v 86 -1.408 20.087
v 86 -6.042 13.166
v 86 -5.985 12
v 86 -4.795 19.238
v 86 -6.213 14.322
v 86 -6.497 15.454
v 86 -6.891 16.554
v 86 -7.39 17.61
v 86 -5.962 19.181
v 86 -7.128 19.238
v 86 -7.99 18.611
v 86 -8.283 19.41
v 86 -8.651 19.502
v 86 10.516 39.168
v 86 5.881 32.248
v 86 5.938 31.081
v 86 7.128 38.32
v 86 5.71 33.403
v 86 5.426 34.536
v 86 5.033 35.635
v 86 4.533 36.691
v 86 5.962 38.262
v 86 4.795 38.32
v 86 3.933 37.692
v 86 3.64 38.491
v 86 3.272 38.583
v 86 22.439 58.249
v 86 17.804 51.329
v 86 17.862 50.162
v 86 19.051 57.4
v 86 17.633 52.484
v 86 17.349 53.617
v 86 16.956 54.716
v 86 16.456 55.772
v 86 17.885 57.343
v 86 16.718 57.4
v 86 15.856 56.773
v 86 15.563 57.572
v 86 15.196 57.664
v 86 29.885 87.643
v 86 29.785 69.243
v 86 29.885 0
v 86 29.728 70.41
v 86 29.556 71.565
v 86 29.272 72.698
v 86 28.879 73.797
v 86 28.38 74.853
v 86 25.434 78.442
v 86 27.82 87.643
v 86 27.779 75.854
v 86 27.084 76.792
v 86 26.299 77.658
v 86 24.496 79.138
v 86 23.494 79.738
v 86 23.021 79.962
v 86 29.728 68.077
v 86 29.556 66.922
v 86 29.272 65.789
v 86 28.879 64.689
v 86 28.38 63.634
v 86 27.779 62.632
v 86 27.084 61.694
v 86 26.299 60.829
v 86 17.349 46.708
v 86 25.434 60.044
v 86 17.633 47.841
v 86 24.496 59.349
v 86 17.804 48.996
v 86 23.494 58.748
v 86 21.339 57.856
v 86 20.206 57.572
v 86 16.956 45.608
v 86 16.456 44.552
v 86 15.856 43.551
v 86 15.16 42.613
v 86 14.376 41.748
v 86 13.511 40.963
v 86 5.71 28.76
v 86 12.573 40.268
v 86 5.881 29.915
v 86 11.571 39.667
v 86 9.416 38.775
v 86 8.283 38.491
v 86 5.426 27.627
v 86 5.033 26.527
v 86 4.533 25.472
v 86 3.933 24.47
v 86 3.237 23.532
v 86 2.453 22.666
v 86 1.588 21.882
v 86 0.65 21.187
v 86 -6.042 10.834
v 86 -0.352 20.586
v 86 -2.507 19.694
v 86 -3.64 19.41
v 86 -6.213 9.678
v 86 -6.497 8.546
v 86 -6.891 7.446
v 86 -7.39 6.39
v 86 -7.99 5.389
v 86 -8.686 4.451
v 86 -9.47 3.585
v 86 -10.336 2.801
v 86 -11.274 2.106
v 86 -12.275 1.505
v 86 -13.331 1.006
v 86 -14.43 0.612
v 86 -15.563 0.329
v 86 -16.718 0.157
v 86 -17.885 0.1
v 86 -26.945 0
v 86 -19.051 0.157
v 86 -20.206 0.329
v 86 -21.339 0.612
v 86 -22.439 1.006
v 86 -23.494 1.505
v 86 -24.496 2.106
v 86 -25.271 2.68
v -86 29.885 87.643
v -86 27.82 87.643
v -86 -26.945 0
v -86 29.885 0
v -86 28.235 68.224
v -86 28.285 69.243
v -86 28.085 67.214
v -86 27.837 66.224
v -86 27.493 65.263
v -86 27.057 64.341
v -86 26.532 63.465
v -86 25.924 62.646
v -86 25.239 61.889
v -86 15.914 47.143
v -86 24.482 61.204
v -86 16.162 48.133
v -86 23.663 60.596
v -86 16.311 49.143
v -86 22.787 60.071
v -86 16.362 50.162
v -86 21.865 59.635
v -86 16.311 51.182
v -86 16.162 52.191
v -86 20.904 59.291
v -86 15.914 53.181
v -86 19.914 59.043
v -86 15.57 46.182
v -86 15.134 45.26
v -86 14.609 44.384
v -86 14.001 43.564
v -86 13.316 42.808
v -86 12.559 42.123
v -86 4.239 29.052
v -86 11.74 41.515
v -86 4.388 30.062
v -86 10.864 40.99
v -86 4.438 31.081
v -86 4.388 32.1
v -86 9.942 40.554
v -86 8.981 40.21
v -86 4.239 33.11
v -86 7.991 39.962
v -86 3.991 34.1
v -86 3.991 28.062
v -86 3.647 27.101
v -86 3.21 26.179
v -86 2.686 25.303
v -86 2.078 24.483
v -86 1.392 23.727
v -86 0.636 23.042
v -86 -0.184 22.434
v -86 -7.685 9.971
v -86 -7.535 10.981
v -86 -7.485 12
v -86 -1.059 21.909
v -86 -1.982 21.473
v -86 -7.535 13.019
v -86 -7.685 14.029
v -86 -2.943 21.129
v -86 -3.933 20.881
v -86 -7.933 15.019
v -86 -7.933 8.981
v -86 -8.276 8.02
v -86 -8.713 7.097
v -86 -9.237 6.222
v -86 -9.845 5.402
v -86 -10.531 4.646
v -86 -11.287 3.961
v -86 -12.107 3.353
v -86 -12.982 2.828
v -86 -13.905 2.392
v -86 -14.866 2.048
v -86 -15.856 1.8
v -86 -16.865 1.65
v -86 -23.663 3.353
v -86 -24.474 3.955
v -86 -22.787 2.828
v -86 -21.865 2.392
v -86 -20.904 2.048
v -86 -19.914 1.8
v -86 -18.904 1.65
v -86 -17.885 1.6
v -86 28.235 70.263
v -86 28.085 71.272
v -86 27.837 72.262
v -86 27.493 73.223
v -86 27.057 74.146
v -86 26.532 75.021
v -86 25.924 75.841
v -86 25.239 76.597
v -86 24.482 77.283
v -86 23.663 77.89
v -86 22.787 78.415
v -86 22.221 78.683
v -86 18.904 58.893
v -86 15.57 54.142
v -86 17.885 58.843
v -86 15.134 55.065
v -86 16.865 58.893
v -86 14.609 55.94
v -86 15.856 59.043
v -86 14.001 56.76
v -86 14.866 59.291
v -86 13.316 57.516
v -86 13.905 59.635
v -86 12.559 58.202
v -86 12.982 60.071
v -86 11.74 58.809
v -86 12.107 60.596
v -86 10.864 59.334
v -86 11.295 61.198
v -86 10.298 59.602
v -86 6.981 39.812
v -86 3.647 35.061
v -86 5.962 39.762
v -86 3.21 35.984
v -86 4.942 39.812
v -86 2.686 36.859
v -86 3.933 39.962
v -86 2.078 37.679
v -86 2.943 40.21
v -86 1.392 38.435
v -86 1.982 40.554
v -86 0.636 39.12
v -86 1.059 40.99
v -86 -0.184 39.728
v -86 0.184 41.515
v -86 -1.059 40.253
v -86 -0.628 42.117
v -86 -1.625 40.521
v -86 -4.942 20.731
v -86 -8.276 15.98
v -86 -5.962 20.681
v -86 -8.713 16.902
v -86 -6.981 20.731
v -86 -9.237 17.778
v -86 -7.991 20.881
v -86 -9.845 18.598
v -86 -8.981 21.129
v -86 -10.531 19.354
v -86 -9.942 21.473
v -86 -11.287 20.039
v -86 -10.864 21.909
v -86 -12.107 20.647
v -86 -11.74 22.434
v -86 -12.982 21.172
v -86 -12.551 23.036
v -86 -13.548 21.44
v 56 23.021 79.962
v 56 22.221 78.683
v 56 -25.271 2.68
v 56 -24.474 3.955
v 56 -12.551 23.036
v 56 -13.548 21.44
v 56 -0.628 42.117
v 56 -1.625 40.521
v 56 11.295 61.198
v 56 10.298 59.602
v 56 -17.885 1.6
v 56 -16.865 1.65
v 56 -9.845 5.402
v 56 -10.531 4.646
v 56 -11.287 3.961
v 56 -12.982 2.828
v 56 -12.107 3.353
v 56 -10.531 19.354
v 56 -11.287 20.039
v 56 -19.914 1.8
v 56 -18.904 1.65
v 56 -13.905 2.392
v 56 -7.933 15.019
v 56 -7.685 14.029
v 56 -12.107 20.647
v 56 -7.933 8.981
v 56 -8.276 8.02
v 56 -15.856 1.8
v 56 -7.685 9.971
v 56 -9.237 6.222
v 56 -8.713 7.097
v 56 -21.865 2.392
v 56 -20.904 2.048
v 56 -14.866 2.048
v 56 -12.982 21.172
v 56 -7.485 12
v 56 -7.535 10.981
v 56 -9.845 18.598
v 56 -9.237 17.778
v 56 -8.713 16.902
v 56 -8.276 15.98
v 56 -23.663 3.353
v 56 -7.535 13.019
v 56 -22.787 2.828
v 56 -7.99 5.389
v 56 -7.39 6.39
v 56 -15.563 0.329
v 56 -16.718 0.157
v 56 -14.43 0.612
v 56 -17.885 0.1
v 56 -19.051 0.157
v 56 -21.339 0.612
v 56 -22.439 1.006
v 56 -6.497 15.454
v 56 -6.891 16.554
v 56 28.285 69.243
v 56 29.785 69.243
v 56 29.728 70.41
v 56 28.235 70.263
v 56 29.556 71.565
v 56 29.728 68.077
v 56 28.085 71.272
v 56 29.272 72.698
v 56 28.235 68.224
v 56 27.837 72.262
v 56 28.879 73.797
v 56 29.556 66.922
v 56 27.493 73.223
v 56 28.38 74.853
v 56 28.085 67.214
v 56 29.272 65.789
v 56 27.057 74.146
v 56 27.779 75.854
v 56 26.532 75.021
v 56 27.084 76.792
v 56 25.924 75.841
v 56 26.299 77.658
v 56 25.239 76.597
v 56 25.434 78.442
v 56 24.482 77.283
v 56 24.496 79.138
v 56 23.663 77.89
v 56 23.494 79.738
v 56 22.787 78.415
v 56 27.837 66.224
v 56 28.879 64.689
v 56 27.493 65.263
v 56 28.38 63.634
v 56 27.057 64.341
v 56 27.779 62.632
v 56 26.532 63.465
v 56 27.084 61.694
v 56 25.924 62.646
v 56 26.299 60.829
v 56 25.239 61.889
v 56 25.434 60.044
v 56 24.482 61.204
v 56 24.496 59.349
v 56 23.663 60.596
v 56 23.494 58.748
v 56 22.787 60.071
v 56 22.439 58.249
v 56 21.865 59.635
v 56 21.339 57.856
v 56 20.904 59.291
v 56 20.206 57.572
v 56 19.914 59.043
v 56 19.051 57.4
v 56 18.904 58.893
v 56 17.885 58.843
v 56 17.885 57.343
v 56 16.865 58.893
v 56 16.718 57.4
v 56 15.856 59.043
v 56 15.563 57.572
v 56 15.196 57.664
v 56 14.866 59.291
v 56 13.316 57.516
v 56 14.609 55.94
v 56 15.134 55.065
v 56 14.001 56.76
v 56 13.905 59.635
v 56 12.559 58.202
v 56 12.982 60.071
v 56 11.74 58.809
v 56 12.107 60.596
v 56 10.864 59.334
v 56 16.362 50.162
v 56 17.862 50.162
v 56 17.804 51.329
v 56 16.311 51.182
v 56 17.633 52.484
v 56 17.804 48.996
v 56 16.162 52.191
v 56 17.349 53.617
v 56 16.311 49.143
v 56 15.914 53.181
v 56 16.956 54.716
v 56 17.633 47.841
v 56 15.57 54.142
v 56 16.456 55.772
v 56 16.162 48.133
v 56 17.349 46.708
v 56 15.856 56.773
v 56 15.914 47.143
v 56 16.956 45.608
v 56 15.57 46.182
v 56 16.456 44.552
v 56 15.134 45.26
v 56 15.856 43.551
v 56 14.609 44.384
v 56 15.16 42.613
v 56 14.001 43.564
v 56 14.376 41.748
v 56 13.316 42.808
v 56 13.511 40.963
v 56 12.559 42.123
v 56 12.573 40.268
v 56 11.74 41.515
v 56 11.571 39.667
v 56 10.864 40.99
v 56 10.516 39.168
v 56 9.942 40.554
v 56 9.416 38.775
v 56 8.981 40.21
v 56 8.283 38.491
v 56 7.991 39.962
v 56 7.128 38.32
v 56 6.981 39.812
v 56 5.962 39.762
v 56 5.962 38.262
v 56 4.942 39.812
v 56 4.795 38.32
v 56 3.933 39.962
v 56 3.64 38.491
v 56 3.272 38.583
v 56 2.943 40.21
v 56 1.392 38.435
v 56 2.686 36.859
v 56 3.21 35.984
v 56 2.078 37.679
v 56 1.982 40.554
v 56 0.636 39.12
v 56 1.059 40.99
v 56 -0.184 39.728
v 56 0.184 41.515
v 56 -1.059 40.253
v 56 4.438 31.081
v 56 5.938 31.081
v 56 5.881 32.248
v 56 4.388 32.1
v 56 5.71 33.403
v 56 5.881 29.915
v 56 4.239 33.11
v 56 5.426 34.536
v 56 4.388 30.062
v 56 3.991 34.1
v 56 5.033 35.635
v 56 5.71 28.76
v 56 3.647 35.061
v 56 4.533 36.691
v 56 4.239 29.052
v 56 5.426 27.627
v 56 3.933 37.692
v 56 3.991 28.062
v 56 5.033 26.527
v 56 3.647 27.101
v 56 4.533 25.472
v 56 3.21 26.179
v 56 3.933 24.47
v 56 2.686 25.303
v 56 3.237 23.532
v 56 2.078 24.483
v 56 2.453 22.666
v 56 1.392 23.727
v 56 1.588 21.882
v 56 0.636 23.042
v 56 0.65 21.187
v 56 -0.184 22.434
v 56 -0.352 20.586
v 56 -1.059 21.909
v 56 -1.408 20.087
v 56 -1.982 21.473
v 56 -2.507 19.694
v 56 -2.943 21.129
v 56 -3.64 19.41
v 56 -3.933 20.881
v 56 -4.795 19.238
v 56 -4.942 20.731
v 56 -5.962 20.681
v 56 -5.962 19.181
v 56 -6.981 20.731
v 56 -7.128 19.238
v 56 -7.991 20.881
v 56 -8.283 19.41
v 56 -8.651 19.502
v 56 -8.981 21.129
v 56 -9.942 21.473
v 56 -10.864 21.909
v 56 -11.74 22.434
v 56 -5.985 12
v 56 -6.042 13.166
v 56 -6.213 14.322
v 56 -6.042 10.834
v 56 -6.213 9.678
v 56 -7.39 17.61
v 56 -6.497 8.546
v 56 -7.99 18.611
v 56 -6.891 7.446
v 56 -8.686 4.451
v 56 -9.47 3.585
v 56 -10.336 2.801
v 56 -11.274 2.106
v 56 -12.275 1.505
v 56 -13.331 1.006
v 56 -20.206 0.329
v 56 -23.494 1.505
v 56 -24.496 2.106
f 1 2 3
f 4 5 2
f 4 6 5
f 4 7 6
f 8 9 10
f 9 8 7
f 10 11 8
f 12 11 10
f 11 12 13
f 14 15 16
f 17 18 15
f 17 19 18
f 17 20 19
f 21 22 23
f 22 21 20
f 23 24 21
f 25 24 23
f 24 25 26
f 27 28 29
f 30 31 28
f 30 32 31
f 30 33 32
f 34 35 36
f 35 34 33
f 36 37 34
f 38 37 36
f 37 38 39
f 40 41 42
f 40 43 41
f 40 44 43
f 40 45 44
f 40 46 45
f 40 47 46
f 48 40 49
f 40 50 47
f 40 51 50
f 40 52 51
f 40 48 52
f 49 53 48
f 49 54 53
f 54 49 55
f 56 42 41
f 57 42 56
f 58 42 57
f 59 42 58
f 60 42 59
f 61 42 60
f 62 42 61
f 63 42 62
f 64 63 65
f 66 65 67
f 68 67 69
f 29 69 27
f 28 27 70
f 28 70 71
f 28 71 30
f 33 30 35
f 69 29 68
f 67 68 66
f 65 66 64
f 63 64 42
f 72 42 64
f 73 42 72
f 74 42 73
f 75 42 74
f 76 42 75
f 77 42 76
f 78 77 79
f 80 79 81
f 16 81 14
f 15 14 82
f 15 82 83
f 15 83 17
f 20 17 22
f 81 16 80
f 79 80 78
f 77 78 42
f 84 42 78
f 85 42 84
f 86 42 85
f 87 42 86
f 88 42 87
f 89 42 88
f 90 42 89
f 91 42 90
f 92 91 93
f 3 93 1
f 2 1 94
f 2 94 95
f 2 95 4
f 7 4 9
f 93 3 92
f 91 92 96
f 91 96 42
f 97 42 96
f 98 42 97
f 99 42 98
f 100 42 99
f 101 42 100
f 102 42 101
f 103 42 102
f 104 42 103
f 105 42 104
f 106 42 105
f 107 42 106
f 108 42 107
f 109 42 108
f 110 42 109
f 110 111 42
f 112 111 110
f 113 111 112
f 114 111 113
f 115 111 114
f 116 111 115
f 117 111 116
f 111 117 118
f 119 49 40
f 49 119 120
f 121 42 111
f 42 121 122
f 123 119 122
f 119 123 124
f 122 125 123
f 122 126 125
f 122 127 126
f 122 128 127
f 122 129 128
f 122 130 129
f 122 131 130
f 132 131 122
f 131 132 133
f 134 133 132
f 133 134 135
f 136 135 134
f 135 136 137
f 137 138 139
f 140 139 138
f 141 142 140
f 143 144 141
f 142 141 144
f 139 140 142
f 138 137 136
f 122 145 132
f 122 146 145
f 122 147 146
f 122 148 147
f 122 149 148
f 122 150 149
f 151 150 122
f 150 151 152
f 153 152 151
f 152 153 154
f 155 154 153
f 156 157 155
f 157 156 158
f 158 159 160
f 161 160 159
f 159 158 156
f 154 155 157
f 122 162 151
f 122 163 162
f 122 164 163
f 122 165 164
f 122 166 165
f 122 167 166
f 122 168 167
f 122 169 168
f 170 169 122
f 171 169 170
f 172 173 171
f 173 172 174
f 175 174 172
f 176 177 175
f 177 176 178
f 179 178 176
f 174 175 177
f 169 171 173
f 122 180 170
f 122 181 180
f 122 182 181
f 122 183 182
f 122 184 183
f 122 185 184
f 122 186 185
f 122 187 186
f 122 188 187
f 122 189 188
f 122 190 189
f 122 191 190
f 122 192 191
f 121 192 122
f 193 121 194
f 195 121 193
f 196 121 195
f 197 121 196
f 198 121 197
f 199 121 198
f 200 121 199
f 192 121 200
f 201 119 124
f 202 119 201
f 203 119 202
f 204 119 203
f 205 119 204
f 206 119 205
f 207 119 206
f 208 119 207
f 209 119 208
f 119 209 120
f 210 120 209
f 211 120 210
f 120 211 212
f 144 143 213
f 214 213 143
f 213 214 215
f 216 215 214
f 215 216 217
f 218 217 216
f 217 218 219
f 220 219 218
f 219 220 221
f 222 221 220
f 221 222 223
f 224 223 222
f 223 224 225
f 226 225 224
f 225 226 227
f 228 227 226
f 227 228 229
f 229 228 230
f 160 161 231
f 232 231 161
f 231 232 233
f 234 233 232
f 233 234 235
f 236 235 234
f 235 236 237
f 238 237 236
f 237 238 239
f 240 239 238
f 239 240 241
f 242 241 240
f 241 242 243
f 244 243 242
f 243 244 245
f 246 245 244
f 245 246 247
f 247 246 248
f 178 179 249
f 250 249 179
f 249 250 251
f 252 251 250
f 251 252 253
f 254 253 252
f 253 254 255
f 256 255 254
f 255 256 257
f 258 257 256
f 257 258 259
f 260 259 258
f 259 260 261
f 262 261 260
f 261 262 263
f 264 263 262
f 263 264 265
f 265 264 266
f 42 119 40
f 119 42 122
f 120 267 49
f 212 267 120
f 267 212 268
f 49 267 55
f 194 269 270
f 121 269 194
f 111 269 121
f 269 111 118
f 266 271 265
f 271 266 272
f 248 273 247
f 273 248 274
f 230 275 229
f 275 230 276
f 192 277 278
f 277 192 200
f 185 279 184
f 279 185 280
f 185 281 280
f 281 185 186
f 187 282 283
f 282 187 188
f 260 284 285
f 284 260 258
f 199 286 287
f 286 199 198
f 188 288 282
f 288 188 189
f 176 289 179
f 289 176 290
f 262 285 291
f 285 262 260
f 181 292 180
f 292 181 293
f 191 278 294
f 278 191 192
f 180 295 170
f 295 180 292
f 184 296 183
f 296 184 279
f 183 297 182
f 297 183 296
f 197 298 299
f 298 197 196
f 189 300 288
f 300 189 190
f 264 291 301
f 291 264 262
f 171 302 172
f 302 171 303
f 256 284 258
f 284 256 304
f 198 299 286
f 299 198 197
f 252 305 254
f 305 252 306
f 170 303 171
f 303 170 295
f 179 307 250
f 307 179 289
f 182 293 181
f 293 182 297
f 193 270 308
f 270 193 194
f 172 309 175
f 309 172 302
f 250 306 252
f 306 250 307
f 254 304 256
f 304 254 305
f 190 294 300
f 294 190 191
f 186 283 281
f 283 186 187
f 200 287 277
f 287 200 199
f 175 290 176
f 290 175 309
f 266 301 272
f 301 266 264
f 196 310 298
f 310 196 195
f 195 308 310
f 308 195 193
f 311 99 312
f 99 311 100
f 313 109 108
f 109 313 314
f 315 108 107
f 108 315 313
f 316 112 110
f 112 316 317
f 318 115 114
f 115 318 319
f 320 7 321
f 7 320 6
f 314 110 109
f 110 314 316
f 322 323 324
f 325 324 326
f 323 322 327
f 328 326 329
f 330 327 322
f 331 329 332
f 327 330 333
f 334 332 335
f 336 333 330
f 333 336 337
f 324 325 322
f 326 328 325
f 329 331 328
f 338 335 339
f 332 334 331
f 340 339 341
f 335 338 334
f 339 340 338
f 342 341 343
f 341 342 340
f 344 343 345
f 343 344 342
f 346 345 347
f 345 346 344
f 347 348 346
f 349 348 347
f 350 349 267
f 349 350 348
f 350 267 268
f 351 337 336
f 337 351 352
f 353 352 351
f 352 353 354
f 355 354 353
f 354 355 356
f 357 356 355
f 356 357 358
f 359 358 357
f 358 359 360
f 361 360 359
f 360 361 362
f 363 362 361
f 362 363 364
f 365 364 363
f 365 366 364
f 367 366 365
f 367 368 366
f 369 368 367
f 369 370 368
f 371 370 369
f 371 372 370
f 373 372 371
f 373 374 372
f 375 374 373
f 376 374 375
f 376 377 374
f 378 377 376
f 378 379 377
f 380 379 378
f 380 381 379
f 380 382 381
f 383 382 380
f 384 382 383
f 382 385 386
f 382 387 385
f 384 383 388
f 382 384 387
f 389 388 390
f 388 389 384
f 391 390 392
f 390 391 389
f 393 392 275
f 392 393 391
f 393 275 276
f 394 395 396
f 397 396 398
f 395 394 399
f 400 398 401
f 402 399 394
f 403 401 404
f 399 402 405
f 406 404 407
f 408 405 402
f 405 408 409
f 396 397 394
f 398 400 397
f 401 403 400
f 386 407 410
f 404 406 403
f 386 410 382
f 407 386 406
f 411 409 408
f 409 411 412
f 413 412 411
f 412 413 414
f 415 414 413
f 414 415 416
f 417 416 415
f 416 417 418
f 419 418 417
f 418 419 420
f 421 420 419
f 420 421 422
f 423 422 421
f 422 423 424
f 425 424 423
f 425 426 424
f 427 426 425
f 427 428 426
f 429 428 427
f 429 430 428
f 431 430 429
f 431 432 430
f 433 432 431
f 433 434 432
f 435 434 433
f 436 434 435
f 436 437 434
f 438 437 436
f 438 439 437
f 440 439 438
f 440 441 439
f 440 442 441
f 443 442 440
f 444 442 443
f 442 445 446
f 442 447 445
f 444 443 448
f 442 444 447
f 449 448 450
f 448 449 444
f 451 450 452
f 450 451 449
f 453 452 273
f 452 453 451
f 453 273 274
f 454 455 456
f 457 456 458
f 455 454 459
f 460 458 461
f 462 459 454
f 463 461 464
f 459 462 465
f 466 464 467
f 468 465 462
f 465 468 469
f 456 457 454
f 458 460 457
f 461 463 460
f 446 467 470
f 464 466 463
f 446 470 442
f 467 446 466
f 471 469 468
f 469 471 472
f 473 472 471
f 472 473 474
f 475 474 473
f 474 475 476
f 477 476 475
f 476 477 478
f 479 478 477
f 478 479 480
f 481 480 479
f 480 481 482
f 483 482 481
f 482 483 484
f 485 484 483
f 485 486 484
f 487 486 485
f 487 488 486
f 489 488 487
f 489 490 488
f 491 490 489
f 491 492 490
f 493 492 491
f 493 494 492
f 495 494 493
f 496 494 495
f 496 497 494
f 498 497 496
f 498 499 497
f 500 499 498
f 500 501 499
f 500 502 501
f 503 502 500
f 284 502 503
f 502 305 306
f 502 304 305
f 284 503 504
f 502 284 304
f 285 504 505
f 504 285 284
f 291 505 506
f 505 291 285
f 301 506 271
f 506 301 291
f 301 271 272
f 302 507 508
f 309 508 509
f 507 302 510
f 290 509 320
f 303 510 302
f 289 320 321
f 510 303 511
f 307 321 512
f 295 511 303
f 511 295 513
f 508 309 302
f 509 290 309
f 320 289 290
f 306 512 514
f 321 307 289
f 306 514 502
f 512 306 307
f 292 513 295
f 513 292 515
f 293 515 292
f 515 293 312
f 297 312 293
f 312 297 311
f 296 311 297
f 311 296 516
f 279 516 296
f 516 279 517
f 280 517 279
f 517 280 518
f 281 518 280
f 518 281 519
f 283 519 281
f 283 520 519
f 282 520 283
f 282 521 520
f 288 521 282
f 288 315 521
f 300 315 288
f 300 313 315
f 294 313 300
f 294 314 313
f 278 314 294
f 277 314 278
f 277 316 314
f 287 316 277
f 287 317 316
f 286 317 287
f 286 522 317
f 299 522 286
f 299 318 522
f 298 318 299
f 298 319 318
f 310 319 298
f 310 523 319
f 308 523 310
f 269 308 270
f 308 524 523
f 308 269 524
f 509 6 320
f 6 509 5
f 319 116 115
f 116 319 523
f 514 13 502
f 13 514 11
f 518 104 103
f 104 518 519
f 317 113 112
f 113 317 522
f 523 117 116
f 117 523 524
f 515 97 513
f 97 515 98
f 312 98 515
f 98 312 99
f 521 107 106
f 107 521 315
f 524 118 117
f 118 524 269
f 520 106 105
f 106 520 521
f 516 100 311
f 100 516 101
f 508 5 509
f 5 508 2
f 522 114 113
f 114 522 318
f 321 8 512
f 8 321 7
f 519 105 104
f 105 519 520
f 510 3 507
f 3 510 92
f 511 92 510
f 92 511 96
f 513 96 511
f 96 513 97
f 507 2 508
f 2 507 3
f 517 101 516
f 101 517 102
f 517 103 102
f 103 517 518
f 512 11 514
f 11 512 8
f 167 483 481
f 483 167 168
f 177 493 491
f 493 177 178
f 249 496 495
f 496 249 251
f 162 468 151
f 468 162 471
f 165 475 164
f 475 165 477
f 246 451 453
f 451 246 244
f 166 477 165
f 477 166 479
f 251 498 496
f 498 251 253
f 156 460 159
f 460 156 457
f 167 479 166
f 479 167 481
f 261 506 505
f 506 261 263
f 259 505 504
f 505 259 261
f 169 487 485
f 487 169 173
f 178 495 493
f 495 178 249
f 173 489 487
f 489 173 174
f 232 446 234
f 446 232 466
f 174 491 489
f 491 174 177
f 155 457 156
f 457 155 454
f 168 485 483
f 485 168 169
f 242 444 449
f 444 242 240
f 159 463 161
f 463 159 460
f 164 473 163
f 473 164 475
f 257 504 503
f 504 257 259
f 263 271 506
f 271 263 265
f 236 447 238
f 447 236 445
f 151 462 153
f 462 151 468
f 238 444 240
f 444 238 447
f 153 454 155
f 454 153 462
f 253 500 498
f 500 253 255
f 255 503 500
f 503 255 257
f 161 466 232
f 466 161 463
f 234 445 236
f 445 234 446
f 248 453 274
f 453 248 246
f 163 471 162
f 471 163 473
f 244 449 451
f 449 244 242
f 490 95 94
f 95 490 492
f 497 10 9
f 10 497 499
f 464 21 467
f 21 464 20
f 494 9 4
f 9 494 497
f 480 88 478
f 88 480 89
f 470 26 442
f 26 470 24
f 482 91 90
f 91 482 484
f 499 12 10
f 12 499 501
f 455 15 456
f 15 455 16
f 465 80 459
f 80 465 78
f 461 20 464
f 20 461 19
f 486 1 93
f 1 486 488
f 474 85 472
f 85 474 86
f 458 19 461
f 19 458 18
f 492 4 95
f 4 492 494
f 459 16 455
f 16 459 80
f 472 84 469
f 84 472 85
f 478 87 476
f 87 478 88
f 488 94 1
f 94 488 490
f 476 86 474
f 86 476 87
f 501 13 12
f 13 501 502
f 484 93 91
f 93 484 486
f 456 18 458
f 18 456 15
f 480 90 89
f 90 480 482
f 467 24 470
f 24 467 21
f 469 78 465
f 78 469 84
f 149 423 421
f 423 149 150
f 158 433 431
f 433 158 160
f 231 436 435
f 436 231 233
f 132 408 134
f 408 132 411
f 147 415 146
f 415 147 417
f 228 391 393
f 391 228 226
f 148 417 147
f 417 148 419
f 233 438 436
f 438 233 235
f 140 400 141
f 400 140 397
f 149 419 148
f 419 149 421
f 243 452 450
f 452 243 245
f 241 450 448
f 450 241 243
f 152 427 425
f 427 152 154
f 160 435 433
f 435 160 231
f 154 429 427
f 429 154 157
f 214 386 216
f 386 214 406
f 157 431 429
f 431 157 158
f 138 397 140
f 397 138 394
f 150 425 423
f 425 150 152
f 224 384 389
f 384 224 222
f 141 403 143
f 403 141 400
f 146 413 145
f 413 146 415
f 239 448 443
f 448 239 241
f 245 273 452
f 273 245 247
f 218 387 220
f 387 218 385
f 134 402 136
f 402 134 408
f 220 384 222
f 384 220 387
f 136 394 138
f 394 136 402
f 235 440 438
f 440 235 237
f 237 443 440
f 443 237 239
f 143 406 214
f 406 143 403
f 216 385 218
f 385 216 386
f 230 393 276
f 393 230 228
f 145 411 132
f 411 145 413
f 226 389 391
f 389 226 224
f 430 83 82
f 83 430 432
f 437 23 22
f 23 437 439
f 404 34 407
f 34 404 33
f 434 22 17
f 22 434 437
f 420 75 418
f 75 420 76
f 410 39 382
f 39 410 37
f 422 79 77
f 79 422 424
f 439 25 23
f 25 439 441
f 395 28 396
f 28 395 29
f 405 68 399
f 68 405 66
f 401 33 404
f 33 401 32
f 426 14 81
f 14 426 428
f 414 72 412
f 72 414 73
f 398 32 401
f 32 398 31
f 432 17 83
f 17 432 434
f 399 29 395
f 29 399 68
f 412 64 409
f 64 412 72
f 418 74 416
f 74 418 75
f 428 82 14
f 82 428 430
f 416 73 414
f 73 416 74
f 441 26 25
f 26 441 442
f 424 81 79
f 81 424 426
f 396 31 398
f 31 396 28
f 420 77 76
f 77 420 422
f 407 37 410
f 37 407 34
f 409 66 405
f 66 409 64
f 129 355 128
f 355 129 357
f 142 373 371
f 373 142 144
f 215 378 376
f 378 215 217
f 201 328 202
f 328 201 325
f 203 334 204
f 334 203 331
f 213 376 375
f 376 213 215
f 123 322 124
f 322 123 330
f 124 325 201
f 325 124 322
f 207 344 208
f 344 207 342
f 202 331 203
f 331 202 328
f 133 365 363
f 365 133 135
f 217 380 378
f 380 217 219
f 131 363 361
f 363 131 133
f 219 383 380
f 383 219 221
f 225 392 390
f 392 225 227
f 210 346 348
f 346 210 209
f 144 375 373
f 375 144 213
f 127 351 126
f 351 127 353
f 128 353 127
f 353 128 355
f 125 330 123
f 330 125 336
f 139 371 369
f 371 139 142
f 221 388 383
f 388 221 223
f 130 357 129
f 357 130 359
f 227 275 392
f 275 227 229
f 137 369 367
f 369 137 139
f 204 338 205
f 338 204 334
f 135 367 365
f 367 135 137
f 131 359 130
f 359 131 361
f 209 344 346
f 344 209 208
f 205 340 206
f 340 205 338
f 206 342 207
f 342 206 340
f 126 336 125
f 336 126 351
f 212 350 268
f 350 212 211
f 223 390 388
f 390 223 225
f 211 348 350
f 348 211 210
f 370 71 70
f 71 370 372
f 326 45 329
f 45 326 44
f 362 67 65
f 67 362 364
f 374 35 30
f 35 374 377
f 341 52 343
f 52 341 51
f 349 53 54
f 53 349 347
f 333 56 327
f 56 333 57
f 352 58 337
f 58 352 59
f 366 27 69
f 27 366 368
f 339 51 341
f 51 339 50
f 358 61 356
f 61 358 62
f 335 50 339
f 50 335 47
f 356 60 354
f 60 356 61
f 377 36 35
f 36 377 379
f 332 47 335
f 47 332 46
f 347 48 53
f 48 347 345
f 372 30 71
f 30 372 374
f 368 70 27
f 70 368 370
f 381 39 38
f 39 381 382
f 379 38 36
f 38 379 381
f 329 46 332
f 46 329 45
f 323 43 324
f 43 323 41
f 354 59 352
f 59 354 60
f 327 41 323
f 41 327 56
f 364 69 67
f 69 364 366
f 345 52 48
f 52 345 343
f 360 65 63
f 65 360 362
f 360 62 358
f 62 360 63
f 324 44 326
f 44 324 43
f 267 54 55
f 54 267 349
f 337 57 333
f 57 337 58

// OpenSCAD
// file: common.scad
// ============================================================
// common.scad — shared parameters + modules for all designs
// LOCKED PEN SPECIFICATION (do not change)
// ============================================================
PEN_L = 165;      // pen length (mm)
PEN_A = 17;       // pen cross-section minor
PEN_B = 20;       // pen cross-section major (used as diameter envelope)
CLEAR = 0.4;      // fit clearance
WALL  = 1.6;      // minimum wall thickness

$fn = 64;

RCH = PEN_B/2 + CLEAR;   // = 10.4  channel radius
EPS = 0.01;

// --- open-top U trough cut, axis along X, centered at local origin -----------
// Removes a lower half-cylinder of radius r plus a full-width vertical slot
// upward, so the channel is open at the top (no ceiling -> no overhang).
module trough_cut(len, r=RCH, top=80) {
    union() {
        rotate([0,90,0]) cylinder(h=len, r=r, center=true);
        translate([0,0,top/2]) cube([len, 2*r, top], center=true); // slot upward
    }
}

// --- teardrop hole, axis along X, centered at local origin --------------------
// 45-degree self-supporting apex pointing +Z so a horizontal bore can print
// without support.
module teardrop_cut(len, r=RCH) {
    rotate([0,90,0])
        linear_extrude(height=len, center=true)
            union() {
                circle(r=r);
                polygon([[ 0.7071*r, 0.7071*r],
                         [ 0,         1.4142*r],
                         [-0.7071*r,  0.7071*r]]);
            }
}

// --- dial relief: widened open-top pocket at one channel end -----------------
// place at the +X or -X end of a channel so the dose dial clears / can be turned
module dial_relief(end_x, r=RCH+2.2, len=28, top=80) {
    translate([end_x, 0, 0]) trough_cut(len, r, top);
}
// main file
// q5_rack4 — reclined "toast-rack": 4 pens loaded from the long FRONT face
// Family: staggered/clustered. Each pen sits behind-and-above the last on a
// 58deg ramp, so all four grooves open on the top-front long face — you clip
// each pen in from the front instead of sliding it in the end. The ramp faces
// up, so it still prints support-free. A small lip (grooves cut deeper than a
// semicircle) snap-retains each pen.
include <common.scad>

LBLK = 172;
PHI  = 58;                         // ramp angle from horizontal
P    = 22.5;                       // along-ramp pen spacing (> 22.4 min)
LIP  = 2.5;                        // groove cut this far below ramp -> snap lip
RR   = RCH + 1.5;                  // dial-relief radius

Yc = [for (i=[0:3])  -1.5*P*cos(PHI) + i*P*cos(PHI)];   // centered in Y
Zc = [for (i=[0:3])  (RCH + WALL)    + i*P*sin(PHI)];   // climb upward

WBLK = (max(Yc) - min(Yc)) + 2*RCH + 2*WALL;            // ~59.8 < 63.5
HBOX = max(Zc) + RCH + 8;                                // box tall enough
RELIEF_X = LBLK/2 - 10;
BIG = 600;

difference() {
    // wedge = box with its top sheared off along the ramp plane
    difference() {
        translate([0, 0, HBOX/2]) cube([LBLK, WBLK, HBOX], center=true);
        // remove everything above the ramp plane (plane raised LIP above centers)
        translate([0, Yc[0], Zc[0] + LIP])
            rotate([PHI, 0, 0])
                translate([0, 0, BIG/2]) cube([LBLK + 2, BIG, BIG], center=true);
    }
    // four open grooves on the ramp + dial relief at the +X end of each
    for (i = [0:3]) {
        translate([0, Yc[i], Zc[i]])
            rotate([0,90,0]) cylinder(h = LBLK + 2, r = RCH, center=true);
        translate([RELIEF_X, Yc[i], Zc[i]])
            rotate([0,90,0]) cylinder(h = 40, r = RR, center=true);
    }
}
